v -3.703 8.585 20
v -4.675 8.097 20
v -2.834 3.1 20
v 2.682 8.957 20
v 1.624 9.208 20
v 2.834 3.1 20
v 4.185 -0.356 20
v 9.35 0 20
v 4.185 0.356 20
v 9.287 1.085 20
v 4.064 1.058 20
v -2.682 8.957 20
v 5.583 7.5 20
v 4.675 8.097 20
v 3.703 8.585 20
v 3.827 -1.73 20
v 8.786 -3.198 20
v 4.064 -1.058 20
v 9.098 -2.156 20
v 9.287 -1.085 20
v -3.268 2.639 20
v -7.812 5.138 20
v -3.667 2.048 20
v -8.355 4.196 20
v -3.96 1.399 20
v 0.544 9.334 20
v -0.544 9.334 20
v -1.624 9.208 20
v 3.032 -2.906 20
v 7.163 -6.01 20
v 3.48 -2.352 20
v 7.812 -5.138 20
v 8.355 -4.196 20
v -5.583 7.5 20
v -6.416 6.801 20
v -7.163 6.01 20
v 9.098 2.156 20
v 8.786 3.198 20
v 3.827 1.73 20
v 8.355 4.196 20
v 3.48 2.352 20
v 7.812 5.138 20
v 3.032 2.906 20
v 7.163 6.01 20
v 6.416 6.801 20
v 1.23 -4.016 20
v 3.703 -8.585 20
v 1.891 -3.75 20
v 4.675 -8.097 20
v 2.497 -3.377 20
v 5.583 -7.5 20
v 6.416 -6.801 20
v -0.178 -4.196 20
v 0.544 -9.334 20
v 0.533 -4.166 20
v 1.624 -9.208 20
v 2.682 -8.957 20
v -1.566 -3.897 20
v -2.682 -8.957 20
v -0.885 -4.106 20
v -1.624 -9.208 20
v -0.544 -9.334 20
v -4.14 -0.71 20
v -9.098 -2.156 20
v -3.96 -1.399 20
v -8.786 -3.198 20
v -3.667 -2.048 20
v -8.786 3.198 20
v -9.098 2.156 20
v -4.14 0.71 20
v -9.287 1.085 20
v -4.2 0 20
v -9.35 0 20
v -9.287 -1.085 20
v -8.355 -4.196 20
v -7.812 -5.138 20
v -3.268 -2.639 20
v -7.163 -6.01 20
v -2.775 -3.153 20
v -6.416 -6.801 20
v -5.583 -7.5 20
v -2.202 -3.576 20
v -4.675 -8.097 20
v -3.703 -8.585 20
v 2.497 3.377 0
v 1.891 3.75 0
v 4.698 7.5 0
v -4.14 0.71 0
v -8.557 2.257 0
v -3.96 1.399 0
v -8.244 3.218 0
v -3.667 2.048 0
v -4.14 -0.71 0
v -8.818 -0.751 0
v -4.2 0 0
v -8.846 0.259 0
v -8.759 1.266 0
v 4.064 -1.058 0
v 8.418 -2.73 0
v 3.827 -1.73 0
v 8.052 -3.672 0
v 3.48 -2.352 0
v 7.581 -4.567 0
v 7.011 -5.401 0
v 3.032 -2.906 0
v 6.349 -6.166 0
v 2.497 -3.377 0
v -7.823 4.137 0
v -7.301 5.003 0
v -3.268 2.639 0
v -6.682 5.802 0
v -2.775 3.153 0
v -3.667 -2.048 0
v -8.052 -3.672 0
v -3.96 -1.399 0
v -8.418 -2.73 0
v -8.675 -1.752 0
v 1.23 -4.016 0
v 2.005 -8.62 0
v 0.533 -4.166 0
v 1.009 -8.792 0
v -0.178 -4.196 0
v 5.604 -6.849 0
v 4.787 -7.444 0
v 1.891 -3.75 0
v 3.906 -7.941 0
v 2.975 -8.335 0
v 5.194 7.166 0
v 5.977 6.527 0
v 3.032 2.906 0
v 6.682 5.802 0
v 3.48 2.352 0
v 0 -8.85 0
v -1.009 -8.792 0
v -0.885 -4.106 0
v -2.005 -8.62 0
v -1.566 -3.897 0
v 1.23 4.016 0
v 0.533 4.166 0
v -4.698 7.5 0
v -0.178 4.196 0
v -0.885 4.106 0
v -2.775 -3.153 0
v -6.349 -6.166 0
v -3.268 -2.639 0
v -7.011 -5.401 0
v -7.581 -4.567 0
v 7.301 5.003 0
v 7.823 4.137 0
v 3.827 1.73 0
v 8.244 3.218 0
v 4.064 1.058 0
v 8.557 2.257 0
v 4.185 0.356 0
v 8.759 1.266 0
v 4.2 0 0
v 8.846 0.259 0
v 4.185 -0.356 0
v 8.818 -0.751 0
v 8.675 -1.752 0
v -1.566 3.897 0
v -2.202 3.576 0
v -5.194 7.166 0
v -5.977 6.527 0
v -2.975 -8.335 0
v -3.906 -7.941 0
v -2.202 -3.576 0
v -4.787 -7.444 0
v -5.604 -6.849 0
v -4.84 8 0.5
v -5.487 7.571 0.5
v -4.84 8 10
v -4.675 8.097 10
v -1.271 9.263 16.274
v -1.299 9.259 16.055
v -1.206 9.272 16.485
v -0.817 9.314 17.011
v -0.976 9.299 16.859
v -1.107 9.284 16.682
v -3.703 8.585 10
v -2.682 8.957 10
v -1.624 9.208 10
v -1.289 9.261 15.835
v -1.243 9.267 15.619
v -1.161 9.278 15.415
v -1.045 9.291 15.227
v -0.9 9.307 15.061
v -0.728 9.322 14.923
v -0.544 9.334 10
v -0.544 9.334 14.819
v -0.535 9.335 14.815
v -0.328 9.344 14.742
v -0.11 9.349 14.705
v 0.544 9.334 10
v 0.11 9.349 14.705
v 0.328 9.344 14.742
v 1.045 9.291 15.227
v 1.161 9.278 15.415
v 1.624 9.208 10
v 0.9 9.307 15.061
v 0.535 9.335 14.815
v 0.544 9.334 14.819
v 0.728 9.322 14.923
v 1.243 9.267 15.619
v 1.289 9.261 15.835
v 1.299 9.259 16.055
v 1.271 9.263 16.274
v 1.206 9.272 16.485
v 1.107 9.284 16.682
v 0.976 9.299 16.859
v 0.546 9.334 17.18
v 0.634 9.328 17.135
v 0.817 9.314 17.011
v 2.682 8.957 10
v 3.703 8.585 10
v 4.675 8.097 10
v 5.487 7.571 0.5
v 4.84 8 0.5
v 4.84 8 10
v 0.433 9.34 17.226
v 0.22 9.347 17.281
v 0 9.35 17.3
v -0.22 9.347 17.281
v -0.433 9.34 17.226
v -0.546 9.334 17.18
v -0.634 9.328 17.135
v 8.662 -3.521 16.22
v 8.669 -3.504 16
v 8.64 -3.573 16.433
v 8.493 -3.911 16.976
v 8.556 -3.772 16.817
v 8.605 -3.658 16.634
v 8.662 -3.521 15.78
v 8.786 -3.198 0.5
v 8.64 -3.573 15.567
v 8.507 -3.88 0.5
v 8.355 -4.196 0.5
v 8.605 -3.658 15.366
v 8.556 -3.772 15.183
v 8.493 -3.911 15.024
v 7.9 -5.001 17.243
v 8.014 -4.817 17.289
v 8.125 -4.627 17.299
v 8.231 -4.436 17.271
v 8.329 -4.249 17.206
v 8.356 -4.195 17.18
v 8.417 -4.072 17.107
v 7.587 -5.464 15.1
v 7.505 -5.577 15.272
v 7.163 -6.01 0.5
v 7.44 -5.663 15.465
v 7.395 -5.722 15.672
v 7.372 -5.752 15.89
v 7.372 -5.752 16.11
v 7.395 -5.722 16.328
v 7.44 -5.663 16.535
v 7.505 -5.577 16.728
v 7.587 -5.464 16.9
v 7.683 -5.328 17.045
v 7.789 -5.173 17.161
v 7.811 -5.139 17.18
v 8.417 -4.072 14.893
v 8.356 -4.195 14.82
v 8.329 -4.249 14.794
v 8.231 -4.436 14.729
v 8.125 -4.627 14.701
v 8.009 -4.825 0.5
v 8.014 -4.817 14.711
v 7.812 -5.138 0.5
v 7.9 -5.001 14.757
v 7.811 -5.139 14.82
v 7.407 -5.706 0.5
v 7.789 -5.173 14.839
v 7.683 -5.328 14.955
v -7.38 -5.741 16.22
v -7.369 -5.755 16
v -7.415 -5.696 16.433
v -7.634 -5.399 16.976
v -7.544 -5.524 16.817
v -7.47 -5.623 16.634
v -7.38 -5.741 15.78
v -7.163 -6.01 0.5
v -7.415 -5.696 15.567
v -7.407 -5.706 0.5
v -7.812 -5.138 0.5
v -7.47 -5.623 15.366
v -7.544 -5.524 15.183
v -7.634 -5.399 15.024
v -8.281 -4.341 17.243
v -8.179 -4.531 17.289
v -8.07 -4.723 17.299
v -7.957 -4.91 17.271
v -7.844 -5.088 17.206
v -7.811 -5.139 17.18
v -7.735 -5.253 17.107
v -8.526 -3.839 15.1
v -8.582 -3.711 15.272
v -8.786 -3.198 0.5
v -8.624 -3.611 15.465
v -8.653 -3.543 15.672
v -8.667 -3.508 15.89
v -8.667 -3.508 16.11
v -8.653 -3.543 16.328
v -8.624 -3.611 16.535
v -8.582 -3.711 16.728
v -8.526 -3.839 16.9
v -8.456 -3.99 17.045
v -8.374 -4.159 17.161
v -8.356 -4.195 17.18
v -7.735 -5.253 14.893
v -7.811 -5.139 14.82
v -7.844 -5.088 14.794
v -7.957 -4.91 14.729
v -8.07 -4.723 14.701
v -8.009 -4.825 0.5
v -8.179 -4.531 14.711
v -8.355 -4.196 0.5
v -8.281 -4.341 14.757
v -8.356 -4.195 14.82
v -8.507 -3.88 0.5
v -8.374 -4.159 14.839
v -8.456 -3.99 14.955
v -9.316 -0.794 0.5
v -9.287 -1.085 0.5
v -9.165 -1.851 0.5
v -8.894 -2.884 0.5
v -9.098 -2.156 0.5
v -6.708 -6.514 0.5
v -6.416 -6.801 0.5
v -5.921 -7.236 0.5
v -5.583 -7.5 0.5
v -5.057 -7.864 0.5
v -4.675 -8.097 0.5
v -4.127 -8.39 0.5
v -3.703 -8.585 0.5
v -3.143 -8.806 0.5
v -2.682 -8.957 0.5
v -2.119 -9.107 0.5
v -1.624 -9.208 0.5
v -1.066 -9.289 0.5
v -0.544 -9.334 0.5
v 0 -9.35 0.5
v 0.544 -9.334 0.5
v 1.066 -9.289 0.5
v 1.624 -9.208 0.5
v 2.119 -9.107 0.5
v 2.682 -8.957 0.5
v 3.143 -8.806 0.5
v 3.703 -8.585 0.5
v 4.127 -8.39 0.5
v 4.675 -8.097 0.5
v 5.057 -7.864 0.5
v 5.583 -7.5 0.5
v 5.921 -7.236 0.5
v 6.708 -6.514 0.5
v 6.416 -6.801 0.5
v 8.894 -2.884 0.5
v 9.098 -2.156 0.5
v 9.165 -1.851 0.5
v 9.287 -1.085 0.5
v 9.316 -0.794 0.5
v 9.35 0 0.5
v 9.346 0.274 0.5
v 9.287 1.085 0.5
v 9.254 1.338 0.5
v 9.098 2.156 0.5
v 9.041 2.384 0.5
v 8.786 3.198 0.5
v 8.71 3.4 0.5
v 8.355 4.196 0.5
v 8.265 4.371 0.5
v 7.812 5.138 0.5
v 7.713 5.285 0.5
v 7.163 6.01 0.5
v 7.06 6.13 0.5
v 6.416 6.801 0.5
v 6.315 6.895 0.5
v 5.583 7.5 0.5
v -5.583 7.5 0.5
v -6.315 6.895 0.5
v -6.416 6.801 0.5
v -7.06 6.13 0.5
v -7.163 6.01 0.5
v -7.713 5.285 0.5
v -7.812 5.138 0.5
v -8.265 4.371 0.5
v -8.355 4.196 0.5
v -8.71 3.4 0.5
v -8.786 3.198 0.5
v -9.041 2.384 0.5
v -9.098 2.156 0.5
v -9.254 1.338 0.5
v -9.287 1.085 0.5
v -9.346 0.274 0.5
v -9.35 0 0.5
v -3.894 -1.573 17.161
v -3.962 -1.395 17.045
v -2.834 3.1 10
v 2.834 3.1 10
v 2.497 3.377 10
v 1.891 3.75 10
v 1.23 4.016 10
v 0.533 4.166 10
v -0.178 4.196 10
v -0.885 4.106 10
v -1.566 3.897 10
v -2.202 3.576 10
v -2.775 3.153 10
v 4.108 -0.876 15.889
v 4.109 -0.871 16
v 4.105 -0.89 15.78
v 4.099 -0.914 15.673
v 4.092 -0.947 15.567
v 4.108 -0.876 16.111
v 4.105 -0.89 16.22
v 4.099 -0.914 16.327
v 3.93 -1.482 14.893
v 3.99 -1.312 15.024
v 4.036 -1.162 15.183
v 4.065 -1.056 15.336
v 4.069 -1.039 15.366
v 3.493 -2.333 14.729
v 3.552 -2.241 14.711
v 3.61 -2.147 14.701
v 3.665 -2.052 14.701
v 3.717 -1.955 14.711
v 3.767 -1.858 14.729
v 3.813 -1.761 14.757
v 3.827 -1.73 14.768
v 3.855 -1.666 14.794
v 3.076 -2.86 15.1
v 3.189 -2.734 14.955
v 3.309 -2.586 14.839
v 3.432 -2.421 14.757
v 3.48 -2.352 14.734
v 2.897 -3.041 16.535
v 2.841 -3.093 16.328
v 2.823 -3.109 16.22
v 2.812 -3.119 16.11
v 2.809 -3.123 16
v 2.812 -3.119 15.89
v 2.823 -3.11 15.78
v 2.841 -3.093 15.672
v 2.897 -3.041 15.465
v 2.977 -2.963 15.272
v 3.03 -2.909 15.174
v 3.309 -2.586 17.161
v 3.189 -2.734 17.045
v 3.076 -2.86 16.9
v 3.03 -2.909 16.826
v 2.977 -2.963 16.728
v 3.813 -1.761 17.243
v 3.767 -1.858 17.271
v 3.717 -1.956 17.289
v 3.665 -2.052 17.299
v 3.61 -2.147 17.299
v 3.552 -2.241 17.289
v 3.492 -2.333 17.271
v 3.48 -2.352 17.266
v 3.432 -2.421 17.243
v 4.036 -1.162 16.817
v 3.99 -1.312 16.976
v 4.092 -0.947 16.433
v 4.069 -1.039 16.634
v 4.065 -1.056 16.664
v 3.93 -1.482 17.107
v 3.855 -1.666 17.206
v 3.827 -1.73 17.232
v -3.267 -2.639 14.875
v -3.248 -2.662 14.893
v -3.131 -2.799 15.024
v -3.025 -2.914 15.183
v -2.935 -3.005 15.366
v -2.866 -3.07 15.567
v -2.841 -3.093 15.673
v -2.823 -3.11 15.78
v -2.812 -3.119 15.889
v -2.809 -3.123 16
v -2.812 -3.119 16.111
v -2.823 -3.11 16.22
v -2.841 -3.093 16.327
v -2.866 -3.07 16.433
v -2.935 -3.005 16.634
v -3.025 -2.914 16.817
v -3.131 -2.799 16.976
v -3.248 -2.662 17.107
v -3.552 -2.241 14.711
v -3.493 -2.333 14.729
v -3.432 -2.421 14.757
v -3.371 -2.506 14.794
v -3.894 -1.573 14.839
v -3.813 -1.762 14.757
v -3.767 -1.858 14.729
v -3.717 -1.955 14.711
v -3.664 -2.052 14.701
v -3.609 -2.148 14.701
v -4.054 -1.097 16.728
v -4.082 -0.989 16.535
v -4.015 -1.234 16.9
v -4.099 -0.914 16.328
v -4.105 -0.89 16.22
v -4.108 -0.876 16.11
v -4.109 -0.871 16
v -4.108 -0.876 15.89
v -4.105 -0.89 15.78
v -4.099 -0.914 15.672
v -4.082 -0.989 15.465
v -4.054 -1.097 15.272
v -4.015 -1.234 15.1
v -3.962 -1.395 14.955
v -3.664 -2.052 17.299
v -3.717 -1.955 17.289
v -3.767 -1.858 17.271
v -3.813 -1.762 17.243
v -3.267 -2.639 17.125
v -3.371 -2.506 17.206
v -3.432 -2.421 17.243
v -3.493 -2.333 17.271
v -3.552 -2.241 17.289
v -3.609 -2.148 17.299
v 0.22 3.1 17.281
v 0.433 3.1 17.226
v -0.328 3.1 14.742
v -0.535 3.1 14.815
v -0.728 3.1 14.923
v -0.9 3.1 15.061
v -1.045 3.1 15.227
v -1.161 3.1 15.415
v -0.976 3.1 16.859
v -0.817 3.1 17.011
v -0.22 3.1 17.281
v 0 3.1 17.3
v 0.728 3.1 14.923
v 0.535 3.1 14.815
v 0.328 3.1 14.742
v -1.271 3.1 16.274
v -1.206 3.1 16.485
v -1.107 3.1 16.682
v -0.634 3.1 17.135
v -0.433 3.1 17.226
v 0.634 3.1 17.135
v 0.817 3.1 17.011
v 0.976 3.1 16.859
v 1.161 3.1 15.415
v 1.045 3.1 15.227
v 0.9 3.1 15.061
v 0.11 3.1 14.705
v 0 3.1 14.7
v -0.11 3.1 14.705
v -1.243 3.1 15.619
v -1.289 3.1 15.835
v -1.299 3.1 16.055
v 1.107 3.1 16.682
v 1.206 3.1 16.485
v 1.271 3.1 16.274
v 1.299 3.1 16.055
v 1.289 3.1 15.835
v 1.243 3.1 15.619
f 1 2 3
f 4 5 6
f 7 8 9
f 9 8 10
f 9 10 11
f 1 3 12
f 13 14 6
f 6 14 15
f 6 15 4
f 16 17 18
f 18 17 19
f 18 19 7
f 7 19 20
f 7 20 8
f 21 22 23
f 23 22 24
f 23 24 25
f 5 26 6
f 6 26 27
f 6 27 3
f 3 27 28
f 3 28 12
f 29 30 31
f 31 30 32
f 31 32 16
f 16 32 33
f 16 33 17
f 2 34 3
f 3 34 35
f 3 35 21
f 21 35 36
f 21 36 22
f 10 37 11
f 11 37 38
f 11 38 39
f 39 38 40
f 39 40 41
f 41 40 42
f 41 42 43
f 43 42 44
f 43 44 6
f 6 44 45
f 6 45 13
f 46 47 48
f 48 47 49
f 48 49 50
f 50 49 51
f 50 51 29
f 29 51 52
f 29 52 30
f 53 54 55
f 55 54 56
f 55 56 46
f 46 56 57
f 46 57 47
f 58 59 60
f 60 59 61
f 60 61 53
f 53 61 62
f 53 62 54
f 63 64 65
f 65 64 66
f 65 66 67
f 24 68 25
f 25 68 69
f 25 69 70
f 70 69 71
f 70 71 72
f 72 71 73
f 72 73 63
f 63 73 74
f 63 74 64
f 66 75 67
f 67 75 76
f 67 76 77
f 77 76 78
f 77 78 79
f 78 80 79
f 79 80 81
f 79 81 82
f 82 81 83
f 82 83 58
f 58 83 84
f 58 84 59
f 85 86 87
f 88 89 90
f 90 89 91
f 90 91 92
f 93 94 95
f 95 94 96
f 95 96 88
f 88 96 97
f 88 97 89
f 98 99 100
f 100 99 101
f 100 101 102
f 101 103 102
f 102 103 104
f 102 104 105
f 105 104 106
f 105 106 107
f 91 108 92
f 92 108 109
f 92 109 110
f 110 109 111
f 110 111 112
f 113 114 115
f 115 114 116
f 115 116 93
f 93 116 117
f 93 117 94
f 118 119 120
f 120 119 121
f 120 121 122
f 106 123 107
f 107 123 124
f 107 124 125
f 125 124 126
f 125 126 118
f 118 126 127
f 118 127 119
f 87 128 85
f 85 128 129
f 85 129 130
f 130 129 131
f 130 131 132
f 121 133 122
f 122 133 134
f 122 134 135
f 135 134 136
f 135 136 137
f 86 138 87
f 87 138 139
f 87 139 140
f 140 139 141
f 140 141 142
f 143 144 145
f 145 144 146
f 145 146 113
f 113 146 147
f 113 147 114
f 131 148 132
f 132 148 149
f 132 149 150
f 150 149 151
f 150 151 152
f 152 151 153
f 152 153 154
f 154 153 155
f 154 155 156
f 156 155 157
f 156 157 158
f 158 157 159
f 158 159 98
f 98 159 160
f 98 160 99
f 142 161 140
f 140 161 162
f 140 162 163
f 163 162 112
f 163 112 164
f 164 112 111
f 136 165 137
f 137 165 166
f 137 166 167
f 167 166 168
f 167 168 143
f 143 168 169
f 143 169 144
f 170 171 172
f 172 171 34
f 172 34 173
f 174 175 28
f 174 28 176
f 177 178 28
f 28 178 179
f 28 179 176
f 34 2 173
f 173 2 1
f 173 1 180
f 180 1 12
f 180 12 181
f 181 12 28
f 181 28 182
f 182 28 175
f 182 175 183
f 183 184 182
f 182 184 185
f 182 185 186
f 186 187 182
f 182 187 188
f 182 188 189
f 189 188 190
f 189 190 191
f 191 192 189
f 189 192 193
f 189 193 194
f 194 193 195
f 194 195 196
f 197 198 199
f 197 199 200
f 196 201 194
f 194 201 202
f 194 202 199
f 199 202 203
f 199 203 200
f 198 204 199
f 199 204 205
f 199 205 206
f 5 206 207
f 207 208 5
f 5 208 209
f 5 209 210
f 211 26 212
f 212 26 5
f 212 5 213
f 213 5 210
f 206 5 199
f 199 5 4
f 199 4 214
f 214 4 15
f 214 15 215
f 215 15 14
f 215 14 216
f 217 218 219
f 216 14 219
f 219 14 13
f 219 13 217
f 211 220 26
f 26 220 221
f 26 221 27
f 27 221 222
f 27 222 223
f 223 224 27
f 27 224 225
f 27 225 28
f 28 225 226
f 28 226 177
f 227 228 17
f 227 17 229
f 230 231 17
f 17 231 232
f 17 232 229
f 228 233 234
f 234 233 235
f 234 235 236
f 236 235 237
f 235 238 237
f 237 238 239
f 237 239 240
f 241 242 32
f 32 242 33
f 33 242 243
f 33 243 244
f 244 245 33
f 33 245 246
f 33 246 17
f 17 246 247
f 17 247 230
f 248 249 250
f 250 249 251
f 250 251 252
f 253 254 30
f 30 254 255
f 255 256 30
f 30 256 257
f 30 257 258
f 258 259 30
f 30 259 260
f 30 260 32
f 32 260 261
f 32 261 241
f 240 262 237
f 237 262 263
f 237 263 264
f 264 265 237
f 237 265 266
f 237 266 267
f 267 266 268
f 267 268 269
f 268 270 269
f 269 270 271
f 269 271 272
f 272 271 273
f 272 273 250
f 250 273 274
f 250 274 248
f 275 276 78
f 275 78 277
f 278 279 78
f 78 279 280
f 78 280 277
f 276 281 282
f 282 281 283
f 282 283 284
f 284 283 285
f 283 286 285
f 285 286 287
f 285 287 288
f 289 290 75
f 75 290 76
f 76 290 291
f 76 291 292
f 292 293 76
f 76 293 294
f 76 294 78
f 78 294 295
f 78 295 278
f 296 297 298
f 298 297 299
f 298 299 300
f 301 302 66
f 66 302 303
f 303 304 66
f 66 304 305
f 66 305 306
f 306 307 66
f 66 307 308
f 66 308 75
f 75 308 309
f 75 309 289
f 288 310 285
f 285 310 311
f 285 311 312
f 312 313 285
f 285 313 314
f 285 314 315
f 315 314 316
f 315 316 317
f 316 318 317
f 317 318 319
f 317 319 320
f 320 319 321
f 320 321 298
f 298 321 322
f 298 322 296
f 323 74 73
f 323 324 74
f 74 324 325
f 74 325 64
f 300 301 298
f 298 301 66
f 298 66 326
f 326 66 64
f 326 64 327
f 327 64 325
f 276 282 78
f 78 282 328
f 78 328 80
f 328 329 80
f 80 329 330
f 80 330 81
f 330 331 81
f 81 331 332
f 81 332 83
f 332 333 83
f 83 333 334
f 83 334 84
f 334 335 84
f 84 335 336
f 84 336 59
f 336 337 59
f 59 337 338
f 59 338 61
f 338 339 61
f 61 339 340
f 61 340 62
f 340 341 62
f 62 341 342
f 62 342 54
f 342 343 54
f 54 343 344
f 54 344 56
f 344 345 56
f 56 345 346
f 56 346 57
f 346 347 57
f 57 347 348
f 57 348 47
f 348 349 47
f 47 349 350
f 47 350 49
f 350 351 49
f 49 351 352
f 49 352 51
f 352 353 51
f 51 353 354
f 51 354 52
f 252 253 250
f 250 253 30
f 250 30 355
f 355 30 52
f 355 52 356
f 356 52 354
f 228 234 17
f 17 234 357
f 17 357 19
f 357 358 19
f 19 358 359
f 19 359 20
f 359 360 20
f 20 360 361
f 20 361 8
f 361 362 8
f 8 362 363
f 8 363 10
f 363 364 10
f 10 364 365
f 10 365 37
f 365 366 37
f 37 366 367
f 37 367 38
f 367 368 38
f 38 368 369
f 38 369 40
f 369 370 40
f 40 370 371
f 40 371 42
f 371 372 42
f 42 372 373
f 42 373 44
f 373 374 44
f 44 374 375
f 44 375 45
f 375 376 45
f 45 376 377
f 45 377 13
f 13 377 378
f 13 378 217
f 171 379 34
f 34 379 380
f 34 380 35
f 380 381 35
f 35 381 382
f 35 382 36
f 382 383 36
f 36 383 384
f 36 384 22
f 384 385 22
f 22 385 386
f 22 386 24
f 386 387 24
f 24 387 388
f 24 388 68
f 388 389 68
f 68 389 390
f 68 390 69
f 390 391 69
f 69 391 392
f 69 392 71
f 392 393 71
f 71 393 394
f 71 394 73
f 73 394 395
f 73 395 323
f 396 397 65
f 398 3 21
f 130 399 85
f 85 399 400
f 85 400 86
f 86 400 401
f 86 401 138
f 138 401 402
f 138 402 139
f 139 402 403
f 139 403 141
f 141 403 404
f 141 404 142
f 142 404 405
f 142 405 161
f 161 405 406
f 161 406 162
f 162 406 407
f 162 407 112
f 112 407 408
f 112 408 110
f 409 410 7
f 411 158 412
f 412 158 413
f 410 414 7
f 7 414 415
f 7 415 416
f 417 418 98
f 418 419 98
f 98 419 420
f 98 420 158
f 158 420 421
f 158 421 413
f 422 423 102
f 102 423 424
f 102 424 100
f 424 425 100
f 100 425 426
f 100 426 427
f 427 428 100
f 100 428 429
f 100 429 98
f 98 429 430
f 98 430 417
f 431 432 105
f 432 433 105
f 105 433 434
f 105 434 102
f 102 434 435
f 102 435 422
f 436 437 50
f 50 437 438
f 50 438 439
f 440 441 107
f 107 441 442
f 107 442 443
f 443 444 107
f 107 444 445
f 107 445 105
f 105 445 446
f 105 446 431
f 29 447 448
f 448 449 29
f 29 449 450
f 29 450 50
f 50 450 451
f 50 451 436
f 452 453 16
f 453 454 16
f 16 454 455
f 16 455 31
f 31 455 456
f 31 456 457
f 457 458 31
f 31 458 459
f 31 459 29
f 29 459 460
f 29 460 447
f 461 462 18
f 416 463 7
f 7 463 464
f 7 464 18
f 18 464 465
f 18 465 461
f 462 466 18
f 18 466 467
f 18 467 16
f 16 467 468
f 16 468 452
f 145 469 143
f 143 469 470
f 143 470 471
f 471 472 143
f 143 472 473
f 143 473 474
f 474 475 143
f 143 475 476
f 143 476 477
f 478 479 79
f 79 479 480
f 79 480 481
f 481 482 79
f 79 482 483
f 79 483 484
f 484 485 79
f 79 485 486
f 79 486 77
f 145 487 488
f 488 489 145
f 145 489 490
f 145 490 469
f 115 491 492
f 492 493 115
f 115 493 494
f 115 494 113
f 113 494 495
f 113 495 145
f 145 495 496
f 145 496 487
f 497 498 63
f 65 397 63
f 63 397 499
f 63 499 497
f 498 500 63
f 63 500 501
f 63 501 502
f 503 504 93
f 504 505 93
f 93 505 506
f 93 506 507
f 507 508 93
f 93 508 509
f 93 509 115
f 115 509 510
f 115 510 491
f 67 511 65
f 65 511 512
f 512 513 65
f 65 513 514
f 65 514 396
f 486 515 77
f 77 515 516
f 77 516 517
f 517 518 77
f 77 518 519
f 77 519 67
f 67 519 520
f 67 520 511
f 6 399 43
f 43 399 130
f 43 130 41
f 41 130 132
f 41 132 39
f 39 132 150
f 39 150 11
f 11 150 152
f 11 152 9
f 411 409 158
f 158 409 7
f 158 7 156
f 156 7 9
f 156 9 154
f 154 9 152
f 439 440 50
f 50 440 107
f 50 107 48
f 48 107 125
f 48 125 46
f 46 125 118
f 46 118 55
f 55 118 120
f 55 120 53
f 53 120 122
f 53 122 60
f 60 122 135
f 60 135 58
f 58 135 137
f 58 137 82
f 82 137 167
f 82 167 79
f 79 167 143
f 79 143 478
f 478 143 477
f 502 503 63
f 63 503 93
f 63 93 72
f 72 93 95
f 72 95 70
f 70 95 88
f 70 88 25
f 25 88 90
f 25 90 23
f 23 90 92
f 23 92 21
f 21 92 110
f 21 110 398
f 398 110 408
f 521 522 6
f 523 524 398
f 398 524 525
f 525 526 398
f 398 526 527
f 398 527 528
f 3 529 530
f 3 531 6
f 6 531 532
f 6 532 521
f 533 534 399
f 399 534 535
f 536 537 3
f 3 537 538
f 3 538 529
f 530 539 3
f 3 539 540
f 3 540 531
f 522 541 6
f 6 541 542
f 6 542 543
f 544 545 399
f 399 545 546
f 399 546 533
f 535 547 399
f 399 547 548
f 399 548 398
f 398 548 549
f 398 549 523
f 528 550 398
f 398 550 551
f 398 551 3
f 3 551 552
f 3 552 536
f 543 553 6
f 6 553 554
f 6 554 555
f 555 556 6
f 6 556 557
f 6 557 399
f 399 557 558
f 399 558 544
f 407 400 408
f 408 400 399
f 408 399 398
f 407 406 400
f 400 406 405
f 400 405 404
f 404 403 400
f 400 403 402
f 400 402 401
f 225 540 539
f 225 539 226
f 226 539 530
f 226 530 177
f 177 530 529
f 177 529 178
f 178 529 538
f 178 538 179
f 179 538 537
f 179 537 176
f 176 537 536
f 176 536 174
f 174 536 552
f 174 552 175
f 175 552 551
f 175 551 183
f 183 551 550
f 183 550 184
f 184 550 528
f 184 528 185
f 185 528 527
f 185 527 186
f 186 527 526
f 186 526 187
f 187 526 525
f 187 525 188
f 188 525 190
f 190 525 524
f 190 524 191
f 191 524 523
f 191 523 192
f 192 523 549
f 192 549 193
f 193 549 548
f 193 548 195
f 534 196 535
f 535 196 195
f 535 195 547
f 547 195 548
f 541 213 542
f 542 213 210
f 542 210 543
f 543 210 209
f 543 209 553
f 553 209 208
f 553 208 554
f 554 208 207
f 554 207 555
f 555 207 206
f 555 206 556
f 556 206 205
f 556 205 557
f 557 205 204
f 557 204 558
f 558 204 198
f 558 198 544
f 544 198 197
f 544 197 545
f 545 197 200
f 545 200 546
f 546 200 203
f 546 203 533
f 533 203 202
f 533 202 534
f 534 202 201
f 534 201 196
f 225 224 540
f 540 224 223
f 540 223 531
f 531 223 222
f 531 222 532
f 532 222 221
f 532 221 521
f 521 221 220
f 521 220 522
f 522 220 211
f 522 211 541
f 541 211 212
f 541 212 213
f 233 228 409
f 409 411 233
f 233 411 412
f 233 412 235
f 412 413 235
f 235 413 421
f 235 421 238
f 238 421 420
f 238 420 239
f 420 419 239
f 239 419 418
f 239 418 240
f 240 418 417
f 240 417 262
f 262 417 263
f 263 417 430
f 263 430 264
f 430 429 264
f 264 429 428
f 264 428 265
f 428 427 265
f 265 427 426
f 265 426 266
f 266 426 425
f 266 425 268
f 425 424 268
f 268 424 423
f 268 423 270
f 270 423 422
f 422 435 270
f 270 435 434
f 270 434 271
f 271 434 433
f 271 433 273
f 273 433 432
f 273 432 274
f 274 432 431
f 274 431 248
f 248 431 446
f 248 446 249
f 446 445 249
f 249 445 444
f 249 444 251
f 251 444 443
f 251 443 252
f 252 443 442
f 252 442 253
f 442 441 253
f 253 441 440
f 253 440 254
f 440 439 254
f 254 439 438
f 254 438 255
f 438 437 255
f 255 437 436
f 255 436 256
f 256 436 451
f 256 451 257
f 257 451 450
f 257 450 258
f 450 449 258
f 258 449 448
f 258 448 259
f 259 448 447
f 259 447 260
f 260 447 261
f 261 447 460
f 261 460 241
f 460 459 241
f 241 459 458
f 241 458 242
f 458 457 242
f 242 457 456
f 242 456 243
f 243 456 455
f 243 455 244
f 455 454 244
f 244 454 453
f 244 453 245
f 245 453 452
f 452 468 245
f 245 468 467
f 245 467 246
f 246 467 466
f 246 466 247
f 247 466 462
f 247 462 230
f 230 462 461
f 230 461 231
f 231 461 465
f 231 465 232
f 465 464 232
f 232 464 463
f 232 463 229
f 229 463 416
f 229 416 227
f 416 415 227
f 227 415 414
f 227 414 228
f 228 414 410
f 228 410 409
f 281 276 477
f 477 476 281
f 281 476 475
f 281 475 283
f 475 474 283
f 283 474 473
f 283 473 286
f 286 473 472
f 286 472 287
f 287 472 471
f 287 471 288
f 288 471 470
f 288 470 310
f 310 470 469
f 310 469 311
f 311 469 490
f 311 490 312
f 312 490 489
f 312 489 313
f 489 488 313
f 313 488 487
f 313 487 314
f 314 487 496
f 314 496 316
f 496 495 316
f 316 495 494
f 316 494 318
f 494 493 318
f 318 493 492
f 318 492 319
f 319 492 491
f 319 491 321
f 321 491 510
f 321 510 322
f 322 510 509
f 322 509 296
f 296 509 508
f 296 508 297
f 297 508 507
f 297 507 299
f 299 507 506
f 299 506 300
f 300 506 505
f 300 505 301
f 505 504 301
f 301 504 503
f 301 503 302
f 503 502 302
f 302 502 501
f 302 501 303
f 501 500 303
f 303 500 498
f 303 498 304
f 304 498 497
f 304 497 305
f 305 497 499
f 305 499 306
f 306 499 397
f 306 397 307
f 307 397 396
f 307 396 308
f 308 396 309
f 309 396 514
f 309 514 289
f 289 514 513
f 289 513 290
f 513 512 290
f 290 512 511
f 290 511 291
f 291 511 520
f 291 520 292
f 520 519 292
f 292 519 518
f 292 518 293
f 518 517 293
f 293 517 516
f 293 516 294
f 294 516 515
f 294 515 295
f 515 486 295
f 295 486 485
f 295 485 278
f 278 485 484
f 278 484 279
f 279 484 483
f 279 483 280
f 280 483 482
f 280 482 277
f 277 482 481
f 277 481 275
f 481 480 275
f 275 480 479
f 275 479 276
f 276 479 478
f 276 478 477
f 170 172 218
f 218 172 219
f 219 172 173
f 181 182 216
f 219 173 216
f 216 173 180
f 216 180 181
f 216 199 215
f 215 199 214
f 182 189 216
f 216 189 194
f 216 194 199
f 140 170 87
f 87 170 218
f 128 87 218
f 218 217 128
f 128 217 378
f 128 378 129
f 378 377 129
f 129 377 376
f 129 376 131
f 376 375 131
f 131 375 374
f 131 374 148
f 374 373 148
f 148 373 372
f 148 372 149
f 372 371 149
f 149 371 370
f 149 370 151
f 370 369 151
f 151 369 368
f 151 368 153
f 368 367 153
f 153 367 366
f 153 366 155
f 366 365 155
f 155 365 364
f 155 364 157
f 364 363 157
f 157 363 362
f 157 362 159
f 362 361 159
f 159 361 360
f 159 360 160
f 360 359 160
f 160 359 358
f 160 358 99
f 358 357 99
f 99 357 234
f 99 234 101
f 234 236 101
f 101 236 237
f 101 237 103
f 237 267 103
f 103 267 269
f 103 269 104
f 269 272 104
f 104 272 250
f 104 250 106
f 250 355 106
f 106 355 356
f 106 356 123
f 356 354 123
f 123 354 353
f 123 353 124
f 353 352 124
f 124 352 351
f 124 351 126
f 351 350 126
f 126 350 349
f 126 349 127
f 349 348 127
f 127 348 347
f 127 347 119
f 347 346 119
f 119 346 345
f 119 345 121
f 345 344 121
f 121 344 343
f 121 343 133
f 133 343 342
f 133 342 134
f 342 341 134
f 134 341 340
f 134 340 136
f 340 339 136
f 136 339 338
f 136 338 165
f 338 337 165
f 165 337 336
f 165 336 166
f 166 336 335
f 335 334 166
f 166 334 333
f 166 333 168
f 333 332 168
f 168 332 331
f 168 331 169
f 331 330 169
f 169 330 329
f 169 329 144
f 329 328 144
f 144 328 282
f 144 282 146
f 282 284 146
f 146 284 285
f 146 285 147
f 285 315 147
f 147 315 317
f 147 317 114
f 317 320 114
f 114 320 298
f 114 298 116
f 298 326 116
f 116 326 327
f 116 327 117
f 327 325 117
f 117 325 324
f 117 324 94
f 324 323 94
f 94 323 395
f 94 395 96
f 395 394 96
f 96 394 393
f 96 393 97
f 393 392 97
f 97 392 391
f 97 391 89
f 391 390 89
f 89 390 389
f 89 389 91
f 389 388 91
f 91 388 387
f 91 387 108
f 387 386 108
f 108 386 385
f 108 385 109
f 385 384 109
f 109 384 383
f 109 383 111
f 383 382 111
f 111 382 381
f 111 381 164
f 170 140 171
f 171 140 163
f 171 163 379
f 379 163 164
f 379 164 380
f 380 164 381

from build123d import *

# Parameters (mm, degrees)
SKETCH_2_R               = 9.35
SKETCH_2_R_2             = 4.2
EXTRUDE_1_DEPTH          = 20
EXTRUDE_START            = -10
EXTRUDE_2_DEPTH          = 10
CUT_EXTRUDE_1_REACH      = 30.933
SKETCH_3_R               = 1.3
PATTERN_CIRCULAR_1_COUNT = 3
CUT_EXTRUDE_2_DEPTH      = 10
CHAMFER_1_SIZE           = 0.5


with BuildPart() as part:
    # Эскиз2 → Бобышка-Вытянуть1 (new body)
    with BuildSketch(Plane.XY):
        Circle(SKETCH_2_R)
        Circle(SKETCH_2_R_2, mode=Mode.SUBTRACT)
    extrude(amount=EXTRUDE_1_DEPTH)

    # Эскиз4 → Бобышка-Вытянуть2 (add)
    with BuildSketch(Plane.XY.offset(20).offset(EXTRUDE_START)):
        with BuildLine():
            Line((-2.833725463, 3.1), (2.833725463, 3.1))
            ThreePointArc((2.833725463, 3.1), (0, 4.2), (-2.833725463, 3.1))
        make_face()
    extrude(amount=EXTRUDE_2_DEPTH)

    # Эскиз3 → Вырез-Вытянуть1 (cut, up to next)
    with BuildSketch(Plane(origin=(0, 9.35, 0), x_dir=(1, 0, 0), z_dir=(0, 1, 0)), mode=Mode.PRIVATE) as cut_extrude_1_sk1:
        with Locations(Location((0, -16, 0), (0, 0, 270))):
            Circle(SKETCH_3_R)
    cut_extrude_1_tool1 = extrude(cut_extrude_1_sk1.sketch, amount=-CUT_EXTRUDE_1_REACH, mode=Mode.PRIVATE) & part.part
    cut_extrude_1 = cut_extrude_1_tool1.solids().sort_by_distance((0, 9.35, 16))[0]
    add(cut_extrude_1, mode=Mode.SUBTRACT)

    # Круговой массив1: Вырез-Вытянуть1 ×3 about axis
    pattern_circular_1_axis = Axis((0, 0, 20), (0, 0, -1))
    for i in range(1, PATTERN_CIRCULAR_1_COUNT):
        add(cut_extrude_1.rotate(pattern_circular_1_axis, i * 360 / PATTERN_CIRCULAR_1_COUNT), mode=Mode.SUBTRACT)

    # Эскиз5 → Вырез-Вытянуть2 (cut)
    with BuildSketch(Plane(origin=(0, 0, 0), x_dir=(-1, 0, 0), z_dir=(0, 0, -1))):
        with BuildLine():
            Line((-4.839679741, 8), (4.839679741, 8))
            ThreePointArc((4.839679741, 8), (0, 9.35), (-4.839679741, 8))
        make_face()
    extrude(amount=-CUT_EXTRUDE_2_DEPTH, mode=Mode.SUBTRACT)

    # Фаска1
    chamfer_1_edges = [part.edges().sort_by_distance(p)[0] for p in [
        (-4.591921951, -8.144737736, 0),
        (0, 8, 0),
    ]]
    chamfer(chamfer_1_edges, length=CHAMFER_1_SIZE)


solid = part.part
